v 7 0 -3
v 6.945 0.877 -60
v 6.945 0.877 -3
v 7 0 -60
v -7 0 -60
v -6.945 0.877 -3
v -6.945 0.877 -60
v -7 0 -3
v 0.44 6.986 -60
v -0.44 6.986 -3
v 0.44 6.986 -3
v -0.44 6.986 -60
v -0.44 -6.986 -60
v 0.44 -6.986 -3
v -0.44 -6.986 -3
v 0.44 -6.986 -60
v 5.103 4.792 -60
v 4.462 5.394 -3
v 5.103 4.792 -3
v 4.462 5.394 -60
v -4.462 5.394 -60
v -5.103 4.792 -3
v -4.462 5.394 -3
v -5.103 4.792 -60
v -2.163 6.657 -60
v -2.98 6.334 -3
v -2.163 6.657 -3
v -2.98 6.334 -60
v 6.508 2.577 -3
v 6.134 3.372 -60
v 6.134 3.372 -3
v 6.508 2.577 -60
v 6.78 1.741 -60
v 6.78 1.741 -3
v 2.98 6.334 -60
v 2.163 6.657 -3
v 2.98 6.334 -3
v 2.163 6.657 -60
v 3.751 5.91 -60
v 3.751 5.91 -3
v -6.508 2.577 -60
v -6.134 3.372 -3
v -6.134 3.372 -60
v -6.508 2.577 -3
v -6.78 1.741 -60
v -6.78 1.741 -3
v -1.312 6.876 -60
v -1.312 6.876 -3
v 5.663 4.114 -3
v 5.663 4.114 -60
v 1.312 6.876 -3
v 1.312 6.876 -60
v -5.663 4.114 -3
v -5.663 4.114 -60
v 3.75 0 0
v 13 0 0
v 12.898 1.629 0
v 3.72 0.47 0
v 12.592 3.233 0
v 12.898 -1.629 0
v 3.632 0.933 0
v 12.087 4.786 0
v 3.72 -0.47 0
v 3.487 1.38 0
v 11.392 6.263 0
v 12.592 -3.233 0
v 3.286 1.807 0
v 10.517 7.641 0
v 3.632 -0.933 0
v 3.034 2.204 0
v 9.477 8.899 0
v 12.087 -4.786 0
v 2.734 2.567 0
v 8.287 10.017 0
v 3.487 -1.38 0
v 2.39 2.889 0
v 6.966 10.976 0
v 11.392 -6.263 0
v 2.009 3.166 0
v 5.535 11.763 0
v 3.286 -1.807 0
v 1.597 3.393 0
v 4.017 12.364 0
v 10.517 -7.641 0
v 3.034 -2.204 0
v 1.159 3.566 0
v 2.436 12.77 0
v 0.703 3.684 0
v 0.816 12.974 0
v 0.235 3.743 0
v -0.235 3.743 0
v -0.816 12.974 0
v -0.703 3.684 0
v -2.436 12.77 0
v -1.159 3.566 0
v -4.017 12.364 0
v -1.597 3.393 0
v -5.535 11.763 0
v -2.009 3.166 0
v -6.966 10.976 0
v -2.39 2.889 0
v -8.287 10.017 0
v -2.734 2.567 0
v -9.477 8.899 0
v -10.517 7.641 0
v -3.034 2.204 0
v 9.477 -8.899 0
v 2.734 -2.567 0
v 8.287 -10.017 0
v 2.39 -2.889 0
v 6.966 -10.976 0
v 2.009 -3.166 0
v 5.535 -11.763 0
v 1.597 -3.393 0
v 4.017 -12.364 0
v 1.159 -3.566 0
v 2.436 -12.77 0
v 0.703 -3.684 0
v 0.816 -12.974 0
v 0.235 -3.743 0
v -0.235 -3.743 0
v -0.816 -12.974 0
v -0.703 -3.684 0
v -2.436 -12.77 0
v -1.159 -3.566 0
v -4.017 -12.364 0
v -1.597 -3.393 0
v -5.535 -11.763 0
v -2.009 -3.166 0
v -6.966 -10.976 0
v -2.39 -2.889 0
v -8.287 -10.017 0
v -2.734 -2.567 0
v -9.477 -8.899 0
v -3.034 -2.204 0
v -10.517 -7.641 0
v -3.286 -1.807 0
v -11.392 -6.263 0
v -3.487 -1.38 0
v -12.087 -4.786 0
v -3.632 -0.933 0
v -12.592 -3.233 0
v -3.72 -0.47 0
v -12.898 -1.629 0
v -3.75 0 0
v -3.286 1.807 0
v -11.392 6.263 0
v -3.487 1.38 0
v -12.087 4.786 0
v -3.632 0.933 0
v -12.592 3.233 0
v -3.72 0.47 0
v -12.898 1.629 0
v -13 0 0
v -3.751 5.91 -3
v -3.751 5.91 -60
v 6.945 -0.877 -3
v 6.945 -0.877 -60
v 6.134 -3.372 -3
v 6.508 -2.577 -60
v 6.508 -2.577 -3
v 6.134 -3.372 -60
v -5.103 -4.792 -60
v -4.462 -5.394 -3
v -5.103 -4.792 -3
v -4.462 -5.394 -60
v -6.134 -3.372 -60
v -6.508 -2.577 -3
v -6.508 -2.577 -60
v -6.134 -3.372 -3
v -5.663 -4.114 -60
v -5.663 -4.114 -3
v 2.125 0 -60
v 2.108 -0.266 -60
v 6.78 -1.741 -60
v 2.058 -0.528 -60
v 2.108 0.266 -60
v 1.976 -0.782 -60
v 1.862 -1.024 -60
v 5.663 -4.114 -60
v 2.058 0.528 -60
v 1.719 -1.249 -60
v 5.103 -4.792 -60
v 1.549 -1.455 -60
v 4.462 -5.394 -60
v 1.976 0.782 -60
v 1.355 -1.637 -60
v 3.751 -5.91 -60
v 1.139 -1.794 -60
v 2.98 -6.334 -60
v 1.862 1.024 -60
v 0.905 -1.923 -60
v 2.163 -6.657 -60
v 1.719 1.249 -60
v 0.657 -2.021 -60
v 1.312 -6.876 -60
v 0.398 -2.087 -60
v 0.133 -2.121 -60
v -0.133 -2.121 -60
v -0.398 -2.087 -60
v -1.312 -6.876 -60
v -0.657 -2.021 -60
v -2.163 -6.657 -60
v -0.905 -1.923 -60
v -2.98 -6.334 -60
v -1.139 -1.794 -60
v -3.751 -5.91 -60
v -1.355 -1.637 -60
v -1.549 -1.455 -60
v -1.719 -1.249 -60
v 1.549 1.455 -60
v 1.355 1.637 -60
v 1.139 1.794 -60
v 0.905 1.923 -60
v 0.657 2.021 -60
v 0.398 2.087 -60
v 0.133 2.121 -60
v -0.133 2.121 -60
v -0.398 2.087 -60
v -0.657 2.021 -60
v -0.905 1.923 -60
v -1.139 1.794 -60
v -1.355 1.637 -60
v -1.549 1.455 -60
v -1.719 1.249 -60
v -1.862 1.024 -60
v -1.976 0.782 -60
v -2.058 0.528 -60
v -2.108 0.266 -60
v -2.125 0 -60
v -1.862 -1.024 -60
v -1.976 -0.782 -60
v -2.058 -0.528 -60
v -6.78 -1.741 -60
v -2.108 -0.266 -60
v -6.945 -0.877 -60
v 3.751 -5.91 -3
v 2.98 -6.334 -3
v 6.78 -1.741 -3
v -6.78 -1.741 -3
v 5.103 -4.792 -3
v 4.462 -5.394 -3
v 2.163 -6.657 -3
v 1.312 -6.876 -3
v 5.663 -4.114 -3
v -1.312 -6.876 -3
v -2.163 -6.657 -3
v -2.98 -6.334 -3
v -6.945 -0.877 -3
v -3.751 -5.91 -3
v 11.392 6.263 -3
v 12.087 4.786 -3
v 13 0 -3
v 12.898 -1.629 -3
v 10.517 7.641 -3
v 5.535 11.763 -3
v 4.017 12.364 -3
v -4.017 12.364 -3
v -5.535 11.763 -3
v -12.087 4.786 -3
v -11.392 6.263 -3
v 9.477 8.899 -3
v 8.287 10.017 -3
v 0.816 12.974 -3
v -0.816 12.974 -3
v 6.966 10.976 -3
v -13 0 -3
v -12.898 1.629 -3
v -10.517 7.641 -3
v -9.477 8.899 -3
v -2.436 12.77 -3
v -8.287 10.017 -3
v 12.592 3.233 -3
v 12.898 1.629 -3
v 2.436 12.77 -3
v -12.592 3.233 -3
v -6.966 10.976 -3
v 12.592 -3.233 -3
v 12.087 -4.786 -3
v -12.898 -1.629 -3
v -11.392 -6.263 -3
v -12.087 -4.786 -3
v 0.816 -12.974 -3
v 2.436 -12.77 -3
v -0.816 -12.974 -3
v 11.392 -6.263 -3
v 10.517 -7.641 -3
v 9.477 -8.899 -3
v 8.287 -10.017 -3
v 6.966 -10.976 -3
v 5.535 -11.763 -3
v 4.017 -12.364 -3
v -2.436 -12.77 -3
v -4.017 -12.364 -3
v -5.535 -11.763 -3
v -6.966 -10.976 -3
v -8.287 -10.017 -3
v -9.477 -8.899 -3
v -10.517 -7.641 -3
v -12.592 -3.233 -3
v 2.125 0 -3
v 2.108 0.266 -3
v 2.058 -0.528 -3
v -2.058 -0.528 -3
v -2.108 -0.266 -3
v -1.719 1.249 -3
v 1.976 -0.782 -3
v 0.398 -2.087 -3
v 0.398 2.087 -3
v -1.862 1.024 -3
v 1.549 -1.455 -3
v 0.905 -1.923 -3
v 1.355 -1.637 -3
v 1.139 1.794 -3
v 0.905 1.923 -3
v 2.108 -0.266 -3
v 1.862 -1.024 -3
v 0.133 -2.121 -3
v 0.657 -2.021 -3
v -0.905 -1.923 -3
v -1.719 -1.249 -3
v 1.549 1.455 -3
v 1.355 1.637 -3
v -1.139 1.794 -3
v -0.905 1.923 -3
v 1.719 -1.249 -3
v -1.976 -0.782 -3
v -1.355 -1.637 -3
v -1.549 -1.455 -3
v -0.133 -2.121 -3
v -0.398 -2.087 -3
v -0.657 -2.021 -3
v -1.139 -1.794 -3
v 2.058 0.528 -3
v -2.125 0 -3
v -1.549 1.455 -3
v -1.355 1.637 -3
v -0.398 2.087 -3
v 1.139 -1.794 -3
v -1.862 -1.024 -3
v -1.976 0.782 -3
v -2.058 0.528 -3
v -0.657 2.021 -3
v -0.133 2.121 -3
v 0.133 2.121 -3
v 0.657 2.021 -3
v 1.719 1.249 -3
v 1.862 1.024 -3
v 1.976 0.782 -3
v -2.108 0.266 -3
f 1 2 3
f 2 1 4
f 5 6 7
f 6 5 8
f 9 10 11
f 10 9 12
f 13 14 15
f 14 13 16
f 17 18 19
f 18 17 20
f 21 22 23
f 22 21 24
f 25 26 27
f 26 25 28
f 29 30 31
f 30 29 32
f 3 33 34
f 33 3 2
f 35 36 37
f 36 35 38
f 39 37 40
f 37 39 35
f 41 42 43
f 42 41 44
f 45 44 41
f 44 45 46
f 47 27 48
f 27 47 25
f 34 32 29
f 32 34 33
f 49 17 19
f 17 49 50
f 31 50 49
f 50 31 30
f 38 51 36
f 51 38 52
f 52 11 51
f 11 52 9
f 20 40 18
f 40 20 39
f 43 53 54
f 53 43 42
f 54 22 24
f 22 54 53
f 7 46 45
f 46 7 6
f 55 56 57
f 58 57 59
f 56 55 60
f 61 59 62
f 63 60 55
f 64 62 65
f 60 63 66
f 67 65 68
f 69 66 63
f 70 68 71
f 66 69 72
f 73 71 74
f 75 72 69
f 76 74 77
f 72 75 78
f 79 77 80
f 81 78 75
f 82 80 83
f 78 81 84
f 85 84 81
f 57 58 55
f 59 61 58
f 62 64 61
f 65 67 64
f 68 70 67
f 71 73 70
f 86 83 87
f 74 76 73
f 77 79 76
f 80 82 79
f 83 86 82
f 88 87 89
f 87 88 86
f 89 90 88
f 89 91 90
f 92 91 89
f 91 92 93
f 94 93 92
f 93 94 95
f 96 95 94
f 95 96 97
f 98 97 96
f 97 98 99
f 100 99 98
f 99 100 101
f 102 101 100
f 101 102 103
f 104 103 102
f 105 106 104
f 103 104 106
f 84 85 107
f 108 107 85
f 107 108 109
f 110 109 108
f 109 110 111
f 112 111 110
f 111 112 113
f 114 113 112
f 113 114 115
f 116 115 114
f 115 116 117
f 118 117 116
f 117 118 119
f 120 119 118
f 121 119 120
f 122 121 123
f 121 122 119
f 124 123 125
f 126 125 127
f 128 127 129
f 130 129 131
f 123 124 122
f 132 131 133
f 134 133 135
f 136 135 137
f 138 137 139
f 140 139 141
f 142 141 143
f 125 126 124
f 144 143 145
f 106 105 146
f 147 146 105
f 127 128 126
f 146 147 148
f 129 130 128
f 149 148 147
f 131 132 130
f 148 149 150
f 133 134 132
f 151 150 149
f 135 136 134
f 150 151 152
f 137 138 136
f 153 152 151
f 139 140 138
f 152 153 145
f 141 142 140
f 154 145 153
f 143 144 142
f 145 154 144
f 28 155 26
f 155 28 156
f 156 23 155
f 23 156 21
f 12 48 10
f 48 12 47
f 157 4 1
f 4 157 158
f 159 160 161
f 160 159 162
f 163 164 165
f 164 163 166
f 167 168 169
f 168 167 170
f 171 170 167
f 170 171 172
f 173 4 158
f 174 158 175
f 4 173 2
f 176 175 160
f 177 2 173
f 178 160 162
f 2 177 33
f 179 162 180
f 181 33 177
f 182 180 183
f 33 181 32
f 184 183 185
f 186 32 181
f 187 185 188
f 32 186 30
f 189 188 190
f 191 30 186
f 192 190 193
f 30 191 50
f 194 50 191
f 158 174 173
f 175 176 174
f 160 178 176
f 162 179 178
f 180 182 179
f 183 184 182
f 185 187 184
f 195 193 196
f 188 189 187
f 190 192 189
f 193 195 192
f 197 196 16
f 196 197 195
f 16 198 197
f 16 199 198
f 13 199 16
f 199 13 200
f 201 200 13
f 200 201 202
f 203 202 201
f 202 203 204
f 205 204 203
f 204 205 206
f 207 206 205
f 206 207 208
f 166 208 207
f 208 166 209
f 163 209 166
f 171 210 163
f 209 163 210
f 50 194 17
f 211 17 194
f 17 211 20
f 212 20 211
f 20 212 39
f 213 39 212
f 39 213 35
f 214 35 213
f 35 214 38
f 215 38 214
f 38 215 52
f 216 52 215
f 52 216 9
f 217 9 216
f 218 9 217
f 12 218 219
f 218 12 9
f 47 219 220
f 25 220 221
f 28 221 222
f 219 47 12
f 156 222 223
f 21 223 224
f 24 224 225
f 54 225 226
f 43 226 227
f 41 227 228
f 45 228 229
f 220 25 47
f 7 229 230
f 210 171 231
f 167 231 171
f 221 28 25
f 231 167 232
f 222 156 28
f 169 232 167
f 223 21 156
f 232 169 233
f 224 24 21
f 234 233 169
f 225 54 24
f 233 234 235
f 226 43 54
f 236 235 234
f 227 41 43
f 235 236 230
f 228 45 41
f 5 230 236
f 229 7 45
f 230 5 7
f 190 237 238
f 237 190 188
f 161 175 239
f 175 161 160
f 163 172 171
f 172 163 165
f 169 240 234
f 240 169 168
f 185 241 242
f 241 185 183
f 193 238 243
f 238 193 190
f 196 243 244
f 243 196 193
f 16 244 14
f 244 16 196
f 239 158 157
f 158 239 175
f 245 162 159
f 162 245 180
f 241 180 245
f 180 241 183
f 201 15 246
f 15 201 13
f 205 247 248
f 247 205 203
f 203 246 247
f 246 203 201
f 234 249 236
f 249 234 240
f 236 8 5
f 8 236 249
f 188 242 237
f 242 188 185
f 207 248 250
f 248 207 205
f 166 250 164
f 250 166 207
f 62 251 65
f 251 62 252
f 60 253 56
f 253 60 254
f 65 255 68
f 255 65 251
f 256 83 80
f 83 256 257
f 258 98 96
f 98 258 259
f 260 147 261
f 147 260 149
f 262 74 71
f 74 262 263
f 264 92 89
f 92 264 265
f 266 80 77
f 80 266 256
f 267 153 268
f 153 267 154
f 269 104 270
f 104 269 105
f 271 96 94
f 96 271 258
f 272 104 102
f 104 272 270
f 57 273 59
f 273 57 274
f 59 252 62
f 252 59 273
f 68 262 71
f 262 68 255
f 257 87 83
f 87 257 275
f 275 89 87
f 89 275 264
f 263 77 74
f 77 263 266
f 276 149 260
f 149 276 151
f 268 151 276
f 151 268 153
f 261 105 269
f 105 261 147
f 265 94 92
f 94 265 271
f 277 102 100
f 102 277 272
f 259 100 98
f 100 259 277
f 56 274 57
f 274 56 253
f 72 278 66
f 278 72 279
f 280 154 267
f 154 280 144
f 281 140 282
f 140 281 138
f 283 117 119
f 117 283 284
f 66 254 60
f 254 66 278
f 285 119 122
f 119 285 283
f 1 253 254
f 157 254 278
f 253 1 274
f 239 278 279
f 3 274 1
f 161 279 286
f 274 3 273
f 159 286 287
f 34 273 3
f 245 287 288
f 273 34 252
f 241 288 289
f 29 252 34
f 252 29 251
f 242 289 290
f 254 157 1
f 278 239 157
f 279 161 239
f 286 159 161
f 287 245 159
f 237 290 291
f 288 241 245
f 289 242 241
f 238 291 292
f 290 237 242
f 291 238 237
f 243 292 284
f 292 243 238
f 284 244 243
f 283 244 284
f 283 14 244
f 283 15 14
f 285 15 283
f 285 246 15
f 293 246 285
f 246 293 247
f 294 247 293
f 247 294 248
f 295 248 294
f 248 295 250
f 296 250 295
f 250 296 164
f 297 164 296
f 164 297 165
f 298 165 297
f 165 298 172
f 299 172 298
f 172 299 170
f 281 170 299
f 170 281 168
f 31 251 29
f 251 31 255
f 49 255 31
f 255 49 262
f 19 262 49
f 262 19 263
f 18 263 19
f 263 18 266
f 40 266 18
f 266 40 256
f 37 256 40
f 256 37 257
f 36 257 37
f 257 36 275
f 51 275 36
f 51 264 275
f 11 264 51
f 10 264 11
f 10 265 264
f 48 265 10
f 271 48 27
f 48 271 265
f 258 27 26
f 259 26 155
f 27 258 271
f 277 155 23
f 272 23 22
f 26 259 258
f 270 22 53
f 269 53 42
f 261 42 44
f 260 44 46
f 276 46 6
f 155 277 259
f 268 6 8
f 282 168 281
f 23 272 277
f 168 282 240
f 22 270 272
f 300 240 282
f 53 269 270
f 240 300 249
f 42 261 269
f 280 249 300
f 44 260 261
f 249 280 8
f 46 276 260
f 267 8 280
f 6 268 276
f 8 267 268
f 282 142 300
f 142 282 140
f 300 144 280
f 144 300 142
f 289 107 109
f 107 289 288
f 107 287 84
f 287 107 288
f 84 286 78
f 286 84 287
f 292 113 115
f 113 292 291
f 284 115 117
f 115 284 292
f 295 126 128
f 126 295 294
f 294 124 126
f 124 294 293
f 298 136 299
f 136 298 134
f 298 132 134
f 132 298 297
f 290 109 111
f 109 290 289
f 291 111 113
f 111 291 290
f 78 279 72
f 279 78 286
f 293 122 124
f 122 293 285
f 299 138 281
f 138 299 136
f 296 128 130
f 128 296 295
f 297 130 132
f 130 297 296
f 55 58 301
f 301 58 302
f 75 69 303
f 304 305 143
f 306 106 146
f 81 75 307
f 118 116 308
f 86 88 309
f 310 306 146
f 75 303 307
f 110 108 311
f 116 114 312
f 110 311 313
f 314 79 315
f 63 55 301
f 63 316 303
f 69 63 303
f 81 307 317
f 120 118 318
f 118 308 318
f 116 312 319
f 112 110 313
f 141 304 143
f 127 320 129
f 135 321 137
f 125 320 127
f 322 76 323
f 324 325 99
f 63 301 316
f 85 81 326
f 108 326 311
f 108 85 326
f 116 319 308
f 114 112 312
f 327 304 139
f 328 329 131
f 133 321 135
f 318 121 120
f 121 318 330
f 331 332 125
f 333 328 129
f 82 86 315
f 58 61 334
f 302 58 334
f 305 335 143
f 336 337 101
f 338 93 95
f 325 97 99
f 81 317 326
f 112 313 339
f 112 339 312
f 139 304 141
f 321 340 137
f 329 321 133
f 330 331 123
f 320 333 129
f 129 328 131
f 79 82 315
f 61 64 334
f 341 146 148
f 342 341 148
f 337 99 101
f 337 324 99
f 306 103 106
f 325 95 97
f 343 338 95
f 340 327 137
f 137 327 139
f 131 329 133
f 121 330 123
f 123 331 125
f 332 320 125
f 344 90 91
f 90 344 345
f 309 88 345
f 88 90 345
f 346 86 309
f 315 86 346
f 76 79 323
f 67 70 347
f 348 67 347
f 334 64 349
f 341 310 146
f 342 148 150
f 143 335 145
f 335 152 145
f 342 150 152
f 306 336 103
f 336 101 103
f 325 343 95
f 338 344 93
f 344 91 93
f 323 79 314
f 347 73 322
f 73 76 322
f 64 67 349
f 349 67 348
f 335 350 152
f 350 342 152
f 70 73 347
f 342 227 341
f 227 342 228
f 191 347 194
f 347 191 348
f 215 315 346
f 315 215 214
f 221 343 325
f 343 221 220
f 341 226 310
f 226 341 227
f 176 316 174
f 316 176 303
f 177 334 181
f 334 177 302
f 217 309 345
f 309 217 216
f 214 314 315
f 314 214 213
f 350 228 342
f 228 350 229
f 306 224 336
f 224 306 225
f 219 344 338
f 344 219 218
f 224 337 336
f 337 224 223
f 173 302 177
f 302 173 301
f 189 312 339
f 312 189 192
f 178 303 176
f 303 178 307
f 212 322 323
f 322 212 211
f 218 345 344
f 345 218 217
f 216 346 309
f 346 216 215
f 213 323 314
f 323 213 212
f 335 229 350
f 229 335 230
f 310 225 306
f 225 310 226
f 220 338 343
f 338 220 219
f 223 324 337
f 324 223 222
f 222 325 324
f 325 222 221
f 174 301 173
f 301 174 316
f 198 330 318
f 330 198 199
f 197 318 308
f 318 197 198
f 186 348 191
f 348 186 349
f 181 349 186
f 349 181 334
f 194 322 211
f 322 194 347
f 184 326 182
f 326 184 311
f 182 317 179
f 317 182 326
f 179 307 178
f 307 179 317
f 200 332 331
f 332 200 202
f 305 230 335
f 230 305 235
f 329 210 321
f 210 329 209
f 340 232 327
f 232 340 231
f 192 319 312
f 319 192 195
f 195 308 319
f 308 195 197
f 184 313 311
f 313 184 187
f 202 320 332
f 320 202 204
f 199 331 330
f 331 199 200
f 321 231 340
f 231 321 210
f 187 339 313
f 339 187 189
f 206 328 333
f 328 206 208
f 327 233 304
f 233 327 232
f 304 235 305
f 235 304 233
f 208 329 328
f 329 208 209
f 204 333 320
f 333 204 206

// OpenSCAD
$fn = 50;


difference() {
	union() {
		translate(v = [0, 0, -60.0000000000]) {
			cylinder(h = 60, r = 7.0000000000);
		}
		translate(v = [0, 0, -3.0000000000]) {
			cylinder(h = 3, r = 13.0000000000);
		}
	}
	union() {
		translate(v = [0, 0, 0]) {
			rotate(a = [0, 0, 0]) {
				difference() {
					union() {
						#translate(v = [0, 0, -60.0000000000]) {
							cylinder(h = 60, r = 2.0000000000);
						}
						#translate(v = [0, 0, -3]) {
							cylinder(h = 3, r = 7.0000000000, r1 = 2.1250000000, r2 = 3.7500000000);
						}
						#translate(v = [0, 0, -60.0000000000]) {
							cylinder(h = 60, r = 2.1250000000);
						}
						#translate(v = [0, 0, -60.0000000000]) {
							cylinder(h = 60, r = 2.0000000000);
						}
					}
					union();
				}
			}
		}
	}
}
